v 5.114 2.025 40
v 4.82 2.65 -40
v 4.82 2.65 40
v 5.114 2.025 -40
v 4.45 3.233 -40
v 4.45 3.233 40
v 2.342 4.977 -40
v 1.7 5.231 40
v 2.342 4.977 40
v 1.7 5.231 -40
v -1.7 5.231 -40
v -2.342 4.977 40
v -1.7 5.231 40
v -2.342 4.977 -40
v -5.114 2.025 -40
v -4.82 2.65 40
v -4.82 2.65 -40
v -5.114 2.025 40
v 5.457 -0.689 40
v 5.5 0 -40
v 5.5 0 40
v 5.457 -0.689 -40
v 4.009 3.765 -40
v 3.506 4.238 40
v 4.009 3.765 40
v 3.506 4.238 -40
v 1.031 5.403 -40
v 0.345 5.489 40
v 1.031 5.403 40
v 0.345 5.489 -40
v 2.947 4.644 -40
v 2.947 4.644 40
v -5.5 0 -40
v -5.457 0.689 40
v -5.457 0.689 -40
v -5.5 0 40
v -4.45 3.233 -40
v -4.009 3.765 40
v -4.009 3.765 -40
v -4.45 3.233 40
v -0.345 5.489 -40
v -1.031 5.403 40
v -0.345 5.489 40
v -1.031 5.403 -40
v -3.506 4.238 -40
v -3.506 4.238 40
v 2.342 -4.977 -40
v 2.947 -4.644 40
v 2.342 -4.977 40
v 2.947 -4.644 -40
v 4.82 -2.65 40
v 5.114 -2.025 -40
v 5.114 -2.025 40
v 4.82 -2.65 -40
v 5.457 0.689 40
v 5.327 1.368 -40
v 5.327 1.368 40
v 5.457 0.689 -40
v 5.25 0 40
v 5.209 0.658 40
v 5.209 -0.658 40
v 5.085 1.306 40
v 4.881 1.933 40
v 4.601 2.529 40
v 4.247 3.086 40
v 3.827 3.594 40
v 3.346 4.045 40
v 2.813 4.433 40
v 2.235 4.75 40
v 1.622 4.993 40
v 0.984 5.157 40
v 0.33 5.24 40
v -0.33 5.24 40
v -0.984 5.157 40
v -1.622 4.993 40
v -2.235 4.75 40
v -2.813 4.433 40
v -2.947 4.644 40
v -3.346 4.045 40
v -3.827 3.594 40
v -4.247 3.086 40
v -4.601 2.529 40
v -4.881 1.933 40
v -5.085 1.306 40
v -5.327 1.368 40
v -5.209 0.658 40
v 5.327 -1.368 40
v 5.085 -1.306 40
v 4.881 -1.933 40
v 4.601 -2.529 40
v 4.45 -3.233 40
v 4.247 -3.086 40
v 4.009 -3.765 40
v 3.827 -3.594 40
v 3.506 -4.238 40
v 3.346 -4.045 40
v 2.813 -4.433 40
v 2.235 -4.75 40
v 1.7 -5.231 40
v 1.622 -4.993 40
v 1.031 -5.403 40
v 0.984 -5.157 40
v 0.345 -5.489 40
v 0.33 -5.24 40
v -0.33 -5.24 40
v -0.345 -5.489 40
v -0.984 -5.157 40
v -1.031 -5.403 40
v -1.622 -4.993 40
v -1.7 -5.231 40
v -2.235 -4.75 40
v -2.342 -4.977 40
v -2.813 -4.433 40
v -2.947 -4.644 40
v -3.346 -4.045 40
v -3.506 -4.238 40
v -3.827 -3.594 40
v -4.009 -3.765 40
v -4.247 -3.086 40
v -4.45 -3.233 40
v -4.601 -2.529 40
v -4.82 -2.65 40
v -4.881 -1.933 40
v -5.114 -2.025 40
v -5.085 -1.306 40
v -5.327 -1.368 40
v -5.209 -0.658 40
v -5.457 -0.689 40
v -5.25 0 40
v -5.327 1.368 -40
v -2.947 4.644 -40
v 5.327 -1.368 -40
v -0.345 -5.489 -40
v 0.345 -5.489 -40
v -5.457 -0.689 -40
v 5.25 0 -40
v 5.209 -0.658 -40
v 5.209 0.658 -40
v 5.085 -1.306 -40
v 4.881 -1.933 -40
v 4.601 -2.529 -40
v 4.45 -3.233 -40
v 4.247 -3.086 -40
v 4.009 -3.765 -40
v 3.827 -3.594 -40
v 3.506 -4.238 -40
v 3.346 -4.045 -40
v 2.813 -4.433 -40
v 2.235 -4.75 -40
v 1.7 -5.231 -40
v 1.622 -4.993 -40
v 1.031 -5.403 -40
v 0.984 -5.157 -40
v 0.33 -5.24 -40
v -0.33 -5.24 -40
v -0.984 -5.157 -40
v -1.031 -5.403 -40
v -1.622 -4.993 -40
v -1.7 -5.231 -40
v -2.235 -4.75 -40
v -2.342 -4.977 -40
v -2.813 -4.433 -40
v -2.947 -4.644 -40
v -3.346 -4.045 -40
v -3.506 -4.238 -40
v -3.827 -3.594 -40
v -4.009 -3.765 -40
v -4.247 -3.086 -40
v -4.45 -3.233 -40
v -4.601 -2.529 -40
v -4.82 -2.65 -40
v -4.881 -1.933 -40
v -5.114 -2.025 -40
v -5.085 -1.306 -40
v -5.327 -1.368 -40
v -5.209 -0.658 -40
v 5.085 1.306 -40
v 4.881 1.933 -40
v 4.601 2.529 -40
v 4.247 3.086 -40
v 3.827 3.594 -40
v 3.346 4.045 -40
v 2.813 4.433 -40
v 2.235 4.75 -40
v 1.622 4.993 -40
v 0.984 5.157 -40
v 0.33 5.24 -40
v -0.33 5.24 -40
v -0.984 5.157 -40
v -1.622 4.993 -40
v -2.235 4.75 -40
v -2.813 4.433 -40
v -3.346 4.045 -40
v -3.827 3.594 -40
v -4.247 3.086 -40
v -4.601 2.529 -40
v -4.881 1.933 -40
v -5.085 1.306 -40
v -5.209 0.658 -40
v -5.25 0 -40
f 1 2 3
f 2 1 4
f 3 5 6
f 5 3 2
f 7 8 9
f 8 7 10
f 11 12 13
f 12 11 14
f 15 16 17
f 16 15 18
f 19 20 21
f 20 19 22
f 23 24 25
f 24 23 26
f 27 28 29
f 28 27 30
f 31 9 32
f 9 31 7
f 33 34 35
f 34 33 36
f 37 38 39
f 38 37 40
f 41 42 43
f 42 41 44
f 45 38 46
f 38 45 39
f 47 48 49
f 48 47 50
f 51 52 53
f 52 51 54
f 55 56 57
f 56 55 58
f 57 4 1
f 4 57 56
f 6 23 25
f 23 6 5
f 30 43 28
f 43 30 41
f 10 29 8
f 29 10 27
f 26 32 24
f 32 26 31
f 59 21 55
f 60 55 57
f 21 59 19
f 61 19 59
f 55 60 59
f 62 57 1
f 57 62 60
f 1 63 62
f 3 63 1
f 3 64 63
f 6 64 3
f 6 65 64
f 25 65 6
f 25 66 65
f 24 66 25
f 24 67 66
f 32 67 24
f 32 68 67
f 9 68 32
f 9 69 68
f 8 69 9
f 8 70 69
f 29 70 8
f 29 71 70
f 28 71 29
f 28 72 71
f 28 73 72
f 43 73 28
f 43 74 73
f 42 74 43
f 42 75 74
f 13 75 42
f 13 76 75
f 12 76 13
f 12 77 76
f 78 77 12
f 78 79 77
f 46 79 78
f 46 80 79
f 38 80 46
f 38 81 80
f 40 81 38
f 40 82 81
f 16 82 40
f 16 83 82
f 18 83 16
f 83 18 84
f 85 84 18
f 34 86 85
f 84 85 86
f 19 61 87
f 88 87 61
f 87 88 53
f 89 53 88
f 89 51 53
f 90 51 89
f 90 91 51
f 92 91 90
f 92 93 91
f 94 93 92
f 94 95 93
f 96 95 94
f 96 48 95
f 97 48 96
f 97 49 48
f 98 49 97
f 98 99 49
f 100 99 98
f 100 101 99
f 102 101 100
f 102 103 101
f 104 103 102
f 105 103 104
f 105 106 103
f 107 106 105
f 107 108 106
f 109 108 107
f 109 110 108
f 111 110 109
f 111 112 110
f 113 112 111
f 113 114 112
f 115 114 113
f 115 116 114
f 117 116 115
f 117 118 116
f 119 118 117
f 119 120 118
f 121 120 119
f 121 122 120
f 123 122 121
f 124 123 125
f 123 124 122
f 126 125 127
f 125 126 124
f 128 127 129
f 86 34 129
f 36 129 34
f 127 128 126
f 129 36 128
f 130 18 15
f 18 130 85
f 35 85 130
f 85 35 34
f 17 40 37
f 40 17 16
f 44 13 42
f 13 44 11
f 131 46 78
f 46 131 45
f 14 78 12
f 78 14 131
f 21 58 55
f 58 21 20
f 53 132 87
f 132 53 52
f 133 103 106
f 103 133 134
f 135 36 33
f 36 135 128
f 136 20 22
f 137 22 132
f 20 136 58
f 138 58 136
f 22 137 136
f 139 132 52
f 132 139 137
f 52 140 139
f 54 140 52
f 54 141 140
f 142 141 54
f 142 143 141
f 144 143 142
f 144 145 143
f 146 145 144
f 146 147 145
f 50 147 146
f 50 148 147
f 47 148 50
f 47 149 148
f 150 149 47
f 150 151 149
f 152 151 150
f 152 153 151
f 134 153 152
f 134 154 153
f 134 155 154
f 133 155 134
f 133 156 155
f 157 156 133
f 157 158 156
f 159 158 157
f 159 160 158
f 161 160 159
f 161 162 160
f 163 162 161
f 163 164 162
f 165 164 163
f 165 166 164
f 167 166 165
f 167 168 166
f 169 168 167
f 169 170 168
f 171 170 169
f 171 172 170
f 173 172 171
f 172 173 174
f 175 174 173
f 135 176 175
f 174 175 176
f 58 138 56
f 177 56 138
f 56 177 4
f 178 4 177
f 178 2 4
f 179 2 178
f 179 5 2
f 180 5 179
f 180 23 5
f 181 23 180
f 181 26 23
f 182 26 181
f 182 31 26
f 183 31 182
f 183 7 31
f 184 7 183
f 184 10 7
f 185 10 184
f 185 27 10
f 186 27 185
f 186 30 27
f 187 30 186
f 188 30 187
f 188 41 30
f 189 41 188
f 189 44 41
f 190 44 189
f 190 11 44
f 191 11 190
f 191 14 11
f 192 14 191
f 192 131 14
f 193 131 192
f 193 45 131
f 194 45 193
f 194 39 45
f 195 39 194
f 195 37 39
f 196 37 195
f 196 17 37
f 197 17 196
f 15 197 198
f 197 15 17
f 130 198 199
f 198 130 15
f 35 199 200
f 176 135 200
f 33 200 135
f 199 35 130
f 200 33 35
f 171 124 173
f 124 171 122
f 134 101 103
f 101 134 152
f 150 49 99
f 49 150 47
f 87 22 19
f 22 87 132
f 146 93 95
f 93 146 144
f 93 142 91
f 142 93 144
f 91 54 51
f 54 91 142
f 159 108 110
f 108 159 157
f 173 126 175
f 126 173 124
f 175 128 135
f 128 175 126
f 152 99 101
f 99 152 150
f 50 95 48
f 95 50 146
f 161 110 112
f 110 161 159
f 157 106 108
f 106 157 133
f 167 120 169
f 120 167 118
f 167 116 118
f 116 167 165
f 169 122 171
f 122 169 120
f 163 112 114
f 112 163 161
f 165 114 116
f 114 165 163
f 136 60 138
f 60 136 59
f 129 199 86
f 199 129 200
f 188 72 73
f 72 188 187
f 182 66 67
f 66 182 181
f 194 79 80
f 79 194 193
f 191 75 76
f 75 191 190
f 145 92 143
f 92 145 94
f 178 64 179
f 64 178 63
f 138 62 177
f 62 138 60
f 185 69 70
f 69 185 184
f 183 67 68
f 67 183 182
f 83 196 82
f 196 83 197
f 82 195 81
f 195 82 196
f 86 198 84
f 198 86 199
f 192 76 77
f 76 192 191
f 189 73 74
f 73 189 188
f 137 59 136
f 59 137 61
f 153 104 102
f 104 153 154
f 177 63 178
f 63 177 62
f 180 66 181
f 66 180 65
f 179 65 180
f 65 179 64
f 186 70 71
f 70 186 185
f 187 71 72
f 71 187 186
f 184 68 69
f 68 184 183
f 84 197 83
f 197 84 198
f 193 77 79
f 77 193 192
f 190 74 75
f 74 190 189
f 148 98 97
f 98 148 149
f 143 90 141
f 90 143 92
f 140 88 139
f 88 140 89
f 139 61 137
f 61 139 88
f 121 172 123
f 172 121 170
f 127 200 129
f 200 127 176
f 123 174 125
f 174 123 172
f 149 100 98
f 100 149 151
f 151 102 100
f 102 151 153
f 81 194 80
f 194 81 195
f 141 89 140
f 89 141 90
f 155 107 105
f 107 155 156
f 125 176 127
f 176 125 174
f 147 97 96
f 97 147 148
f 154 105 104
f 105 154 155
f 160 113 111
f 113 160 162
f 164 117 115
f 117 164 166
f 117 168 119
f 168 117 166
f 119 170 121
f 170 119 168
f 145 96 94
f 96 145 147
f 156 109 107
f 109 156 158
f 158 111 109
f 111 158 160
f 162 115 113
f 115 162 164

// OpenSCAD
$fn = 50;


difference() {
	union() {
		translate(v = [0, 0, -40.0000000000]) {
			cylinder(h = 80, r = 5.5000000000);
		}
	}
	union() {
		translate(v = [0, 0, -100.0000000000]) {
			cylinder(h = 200, r = 5.2500000000);
		}
	}
}
